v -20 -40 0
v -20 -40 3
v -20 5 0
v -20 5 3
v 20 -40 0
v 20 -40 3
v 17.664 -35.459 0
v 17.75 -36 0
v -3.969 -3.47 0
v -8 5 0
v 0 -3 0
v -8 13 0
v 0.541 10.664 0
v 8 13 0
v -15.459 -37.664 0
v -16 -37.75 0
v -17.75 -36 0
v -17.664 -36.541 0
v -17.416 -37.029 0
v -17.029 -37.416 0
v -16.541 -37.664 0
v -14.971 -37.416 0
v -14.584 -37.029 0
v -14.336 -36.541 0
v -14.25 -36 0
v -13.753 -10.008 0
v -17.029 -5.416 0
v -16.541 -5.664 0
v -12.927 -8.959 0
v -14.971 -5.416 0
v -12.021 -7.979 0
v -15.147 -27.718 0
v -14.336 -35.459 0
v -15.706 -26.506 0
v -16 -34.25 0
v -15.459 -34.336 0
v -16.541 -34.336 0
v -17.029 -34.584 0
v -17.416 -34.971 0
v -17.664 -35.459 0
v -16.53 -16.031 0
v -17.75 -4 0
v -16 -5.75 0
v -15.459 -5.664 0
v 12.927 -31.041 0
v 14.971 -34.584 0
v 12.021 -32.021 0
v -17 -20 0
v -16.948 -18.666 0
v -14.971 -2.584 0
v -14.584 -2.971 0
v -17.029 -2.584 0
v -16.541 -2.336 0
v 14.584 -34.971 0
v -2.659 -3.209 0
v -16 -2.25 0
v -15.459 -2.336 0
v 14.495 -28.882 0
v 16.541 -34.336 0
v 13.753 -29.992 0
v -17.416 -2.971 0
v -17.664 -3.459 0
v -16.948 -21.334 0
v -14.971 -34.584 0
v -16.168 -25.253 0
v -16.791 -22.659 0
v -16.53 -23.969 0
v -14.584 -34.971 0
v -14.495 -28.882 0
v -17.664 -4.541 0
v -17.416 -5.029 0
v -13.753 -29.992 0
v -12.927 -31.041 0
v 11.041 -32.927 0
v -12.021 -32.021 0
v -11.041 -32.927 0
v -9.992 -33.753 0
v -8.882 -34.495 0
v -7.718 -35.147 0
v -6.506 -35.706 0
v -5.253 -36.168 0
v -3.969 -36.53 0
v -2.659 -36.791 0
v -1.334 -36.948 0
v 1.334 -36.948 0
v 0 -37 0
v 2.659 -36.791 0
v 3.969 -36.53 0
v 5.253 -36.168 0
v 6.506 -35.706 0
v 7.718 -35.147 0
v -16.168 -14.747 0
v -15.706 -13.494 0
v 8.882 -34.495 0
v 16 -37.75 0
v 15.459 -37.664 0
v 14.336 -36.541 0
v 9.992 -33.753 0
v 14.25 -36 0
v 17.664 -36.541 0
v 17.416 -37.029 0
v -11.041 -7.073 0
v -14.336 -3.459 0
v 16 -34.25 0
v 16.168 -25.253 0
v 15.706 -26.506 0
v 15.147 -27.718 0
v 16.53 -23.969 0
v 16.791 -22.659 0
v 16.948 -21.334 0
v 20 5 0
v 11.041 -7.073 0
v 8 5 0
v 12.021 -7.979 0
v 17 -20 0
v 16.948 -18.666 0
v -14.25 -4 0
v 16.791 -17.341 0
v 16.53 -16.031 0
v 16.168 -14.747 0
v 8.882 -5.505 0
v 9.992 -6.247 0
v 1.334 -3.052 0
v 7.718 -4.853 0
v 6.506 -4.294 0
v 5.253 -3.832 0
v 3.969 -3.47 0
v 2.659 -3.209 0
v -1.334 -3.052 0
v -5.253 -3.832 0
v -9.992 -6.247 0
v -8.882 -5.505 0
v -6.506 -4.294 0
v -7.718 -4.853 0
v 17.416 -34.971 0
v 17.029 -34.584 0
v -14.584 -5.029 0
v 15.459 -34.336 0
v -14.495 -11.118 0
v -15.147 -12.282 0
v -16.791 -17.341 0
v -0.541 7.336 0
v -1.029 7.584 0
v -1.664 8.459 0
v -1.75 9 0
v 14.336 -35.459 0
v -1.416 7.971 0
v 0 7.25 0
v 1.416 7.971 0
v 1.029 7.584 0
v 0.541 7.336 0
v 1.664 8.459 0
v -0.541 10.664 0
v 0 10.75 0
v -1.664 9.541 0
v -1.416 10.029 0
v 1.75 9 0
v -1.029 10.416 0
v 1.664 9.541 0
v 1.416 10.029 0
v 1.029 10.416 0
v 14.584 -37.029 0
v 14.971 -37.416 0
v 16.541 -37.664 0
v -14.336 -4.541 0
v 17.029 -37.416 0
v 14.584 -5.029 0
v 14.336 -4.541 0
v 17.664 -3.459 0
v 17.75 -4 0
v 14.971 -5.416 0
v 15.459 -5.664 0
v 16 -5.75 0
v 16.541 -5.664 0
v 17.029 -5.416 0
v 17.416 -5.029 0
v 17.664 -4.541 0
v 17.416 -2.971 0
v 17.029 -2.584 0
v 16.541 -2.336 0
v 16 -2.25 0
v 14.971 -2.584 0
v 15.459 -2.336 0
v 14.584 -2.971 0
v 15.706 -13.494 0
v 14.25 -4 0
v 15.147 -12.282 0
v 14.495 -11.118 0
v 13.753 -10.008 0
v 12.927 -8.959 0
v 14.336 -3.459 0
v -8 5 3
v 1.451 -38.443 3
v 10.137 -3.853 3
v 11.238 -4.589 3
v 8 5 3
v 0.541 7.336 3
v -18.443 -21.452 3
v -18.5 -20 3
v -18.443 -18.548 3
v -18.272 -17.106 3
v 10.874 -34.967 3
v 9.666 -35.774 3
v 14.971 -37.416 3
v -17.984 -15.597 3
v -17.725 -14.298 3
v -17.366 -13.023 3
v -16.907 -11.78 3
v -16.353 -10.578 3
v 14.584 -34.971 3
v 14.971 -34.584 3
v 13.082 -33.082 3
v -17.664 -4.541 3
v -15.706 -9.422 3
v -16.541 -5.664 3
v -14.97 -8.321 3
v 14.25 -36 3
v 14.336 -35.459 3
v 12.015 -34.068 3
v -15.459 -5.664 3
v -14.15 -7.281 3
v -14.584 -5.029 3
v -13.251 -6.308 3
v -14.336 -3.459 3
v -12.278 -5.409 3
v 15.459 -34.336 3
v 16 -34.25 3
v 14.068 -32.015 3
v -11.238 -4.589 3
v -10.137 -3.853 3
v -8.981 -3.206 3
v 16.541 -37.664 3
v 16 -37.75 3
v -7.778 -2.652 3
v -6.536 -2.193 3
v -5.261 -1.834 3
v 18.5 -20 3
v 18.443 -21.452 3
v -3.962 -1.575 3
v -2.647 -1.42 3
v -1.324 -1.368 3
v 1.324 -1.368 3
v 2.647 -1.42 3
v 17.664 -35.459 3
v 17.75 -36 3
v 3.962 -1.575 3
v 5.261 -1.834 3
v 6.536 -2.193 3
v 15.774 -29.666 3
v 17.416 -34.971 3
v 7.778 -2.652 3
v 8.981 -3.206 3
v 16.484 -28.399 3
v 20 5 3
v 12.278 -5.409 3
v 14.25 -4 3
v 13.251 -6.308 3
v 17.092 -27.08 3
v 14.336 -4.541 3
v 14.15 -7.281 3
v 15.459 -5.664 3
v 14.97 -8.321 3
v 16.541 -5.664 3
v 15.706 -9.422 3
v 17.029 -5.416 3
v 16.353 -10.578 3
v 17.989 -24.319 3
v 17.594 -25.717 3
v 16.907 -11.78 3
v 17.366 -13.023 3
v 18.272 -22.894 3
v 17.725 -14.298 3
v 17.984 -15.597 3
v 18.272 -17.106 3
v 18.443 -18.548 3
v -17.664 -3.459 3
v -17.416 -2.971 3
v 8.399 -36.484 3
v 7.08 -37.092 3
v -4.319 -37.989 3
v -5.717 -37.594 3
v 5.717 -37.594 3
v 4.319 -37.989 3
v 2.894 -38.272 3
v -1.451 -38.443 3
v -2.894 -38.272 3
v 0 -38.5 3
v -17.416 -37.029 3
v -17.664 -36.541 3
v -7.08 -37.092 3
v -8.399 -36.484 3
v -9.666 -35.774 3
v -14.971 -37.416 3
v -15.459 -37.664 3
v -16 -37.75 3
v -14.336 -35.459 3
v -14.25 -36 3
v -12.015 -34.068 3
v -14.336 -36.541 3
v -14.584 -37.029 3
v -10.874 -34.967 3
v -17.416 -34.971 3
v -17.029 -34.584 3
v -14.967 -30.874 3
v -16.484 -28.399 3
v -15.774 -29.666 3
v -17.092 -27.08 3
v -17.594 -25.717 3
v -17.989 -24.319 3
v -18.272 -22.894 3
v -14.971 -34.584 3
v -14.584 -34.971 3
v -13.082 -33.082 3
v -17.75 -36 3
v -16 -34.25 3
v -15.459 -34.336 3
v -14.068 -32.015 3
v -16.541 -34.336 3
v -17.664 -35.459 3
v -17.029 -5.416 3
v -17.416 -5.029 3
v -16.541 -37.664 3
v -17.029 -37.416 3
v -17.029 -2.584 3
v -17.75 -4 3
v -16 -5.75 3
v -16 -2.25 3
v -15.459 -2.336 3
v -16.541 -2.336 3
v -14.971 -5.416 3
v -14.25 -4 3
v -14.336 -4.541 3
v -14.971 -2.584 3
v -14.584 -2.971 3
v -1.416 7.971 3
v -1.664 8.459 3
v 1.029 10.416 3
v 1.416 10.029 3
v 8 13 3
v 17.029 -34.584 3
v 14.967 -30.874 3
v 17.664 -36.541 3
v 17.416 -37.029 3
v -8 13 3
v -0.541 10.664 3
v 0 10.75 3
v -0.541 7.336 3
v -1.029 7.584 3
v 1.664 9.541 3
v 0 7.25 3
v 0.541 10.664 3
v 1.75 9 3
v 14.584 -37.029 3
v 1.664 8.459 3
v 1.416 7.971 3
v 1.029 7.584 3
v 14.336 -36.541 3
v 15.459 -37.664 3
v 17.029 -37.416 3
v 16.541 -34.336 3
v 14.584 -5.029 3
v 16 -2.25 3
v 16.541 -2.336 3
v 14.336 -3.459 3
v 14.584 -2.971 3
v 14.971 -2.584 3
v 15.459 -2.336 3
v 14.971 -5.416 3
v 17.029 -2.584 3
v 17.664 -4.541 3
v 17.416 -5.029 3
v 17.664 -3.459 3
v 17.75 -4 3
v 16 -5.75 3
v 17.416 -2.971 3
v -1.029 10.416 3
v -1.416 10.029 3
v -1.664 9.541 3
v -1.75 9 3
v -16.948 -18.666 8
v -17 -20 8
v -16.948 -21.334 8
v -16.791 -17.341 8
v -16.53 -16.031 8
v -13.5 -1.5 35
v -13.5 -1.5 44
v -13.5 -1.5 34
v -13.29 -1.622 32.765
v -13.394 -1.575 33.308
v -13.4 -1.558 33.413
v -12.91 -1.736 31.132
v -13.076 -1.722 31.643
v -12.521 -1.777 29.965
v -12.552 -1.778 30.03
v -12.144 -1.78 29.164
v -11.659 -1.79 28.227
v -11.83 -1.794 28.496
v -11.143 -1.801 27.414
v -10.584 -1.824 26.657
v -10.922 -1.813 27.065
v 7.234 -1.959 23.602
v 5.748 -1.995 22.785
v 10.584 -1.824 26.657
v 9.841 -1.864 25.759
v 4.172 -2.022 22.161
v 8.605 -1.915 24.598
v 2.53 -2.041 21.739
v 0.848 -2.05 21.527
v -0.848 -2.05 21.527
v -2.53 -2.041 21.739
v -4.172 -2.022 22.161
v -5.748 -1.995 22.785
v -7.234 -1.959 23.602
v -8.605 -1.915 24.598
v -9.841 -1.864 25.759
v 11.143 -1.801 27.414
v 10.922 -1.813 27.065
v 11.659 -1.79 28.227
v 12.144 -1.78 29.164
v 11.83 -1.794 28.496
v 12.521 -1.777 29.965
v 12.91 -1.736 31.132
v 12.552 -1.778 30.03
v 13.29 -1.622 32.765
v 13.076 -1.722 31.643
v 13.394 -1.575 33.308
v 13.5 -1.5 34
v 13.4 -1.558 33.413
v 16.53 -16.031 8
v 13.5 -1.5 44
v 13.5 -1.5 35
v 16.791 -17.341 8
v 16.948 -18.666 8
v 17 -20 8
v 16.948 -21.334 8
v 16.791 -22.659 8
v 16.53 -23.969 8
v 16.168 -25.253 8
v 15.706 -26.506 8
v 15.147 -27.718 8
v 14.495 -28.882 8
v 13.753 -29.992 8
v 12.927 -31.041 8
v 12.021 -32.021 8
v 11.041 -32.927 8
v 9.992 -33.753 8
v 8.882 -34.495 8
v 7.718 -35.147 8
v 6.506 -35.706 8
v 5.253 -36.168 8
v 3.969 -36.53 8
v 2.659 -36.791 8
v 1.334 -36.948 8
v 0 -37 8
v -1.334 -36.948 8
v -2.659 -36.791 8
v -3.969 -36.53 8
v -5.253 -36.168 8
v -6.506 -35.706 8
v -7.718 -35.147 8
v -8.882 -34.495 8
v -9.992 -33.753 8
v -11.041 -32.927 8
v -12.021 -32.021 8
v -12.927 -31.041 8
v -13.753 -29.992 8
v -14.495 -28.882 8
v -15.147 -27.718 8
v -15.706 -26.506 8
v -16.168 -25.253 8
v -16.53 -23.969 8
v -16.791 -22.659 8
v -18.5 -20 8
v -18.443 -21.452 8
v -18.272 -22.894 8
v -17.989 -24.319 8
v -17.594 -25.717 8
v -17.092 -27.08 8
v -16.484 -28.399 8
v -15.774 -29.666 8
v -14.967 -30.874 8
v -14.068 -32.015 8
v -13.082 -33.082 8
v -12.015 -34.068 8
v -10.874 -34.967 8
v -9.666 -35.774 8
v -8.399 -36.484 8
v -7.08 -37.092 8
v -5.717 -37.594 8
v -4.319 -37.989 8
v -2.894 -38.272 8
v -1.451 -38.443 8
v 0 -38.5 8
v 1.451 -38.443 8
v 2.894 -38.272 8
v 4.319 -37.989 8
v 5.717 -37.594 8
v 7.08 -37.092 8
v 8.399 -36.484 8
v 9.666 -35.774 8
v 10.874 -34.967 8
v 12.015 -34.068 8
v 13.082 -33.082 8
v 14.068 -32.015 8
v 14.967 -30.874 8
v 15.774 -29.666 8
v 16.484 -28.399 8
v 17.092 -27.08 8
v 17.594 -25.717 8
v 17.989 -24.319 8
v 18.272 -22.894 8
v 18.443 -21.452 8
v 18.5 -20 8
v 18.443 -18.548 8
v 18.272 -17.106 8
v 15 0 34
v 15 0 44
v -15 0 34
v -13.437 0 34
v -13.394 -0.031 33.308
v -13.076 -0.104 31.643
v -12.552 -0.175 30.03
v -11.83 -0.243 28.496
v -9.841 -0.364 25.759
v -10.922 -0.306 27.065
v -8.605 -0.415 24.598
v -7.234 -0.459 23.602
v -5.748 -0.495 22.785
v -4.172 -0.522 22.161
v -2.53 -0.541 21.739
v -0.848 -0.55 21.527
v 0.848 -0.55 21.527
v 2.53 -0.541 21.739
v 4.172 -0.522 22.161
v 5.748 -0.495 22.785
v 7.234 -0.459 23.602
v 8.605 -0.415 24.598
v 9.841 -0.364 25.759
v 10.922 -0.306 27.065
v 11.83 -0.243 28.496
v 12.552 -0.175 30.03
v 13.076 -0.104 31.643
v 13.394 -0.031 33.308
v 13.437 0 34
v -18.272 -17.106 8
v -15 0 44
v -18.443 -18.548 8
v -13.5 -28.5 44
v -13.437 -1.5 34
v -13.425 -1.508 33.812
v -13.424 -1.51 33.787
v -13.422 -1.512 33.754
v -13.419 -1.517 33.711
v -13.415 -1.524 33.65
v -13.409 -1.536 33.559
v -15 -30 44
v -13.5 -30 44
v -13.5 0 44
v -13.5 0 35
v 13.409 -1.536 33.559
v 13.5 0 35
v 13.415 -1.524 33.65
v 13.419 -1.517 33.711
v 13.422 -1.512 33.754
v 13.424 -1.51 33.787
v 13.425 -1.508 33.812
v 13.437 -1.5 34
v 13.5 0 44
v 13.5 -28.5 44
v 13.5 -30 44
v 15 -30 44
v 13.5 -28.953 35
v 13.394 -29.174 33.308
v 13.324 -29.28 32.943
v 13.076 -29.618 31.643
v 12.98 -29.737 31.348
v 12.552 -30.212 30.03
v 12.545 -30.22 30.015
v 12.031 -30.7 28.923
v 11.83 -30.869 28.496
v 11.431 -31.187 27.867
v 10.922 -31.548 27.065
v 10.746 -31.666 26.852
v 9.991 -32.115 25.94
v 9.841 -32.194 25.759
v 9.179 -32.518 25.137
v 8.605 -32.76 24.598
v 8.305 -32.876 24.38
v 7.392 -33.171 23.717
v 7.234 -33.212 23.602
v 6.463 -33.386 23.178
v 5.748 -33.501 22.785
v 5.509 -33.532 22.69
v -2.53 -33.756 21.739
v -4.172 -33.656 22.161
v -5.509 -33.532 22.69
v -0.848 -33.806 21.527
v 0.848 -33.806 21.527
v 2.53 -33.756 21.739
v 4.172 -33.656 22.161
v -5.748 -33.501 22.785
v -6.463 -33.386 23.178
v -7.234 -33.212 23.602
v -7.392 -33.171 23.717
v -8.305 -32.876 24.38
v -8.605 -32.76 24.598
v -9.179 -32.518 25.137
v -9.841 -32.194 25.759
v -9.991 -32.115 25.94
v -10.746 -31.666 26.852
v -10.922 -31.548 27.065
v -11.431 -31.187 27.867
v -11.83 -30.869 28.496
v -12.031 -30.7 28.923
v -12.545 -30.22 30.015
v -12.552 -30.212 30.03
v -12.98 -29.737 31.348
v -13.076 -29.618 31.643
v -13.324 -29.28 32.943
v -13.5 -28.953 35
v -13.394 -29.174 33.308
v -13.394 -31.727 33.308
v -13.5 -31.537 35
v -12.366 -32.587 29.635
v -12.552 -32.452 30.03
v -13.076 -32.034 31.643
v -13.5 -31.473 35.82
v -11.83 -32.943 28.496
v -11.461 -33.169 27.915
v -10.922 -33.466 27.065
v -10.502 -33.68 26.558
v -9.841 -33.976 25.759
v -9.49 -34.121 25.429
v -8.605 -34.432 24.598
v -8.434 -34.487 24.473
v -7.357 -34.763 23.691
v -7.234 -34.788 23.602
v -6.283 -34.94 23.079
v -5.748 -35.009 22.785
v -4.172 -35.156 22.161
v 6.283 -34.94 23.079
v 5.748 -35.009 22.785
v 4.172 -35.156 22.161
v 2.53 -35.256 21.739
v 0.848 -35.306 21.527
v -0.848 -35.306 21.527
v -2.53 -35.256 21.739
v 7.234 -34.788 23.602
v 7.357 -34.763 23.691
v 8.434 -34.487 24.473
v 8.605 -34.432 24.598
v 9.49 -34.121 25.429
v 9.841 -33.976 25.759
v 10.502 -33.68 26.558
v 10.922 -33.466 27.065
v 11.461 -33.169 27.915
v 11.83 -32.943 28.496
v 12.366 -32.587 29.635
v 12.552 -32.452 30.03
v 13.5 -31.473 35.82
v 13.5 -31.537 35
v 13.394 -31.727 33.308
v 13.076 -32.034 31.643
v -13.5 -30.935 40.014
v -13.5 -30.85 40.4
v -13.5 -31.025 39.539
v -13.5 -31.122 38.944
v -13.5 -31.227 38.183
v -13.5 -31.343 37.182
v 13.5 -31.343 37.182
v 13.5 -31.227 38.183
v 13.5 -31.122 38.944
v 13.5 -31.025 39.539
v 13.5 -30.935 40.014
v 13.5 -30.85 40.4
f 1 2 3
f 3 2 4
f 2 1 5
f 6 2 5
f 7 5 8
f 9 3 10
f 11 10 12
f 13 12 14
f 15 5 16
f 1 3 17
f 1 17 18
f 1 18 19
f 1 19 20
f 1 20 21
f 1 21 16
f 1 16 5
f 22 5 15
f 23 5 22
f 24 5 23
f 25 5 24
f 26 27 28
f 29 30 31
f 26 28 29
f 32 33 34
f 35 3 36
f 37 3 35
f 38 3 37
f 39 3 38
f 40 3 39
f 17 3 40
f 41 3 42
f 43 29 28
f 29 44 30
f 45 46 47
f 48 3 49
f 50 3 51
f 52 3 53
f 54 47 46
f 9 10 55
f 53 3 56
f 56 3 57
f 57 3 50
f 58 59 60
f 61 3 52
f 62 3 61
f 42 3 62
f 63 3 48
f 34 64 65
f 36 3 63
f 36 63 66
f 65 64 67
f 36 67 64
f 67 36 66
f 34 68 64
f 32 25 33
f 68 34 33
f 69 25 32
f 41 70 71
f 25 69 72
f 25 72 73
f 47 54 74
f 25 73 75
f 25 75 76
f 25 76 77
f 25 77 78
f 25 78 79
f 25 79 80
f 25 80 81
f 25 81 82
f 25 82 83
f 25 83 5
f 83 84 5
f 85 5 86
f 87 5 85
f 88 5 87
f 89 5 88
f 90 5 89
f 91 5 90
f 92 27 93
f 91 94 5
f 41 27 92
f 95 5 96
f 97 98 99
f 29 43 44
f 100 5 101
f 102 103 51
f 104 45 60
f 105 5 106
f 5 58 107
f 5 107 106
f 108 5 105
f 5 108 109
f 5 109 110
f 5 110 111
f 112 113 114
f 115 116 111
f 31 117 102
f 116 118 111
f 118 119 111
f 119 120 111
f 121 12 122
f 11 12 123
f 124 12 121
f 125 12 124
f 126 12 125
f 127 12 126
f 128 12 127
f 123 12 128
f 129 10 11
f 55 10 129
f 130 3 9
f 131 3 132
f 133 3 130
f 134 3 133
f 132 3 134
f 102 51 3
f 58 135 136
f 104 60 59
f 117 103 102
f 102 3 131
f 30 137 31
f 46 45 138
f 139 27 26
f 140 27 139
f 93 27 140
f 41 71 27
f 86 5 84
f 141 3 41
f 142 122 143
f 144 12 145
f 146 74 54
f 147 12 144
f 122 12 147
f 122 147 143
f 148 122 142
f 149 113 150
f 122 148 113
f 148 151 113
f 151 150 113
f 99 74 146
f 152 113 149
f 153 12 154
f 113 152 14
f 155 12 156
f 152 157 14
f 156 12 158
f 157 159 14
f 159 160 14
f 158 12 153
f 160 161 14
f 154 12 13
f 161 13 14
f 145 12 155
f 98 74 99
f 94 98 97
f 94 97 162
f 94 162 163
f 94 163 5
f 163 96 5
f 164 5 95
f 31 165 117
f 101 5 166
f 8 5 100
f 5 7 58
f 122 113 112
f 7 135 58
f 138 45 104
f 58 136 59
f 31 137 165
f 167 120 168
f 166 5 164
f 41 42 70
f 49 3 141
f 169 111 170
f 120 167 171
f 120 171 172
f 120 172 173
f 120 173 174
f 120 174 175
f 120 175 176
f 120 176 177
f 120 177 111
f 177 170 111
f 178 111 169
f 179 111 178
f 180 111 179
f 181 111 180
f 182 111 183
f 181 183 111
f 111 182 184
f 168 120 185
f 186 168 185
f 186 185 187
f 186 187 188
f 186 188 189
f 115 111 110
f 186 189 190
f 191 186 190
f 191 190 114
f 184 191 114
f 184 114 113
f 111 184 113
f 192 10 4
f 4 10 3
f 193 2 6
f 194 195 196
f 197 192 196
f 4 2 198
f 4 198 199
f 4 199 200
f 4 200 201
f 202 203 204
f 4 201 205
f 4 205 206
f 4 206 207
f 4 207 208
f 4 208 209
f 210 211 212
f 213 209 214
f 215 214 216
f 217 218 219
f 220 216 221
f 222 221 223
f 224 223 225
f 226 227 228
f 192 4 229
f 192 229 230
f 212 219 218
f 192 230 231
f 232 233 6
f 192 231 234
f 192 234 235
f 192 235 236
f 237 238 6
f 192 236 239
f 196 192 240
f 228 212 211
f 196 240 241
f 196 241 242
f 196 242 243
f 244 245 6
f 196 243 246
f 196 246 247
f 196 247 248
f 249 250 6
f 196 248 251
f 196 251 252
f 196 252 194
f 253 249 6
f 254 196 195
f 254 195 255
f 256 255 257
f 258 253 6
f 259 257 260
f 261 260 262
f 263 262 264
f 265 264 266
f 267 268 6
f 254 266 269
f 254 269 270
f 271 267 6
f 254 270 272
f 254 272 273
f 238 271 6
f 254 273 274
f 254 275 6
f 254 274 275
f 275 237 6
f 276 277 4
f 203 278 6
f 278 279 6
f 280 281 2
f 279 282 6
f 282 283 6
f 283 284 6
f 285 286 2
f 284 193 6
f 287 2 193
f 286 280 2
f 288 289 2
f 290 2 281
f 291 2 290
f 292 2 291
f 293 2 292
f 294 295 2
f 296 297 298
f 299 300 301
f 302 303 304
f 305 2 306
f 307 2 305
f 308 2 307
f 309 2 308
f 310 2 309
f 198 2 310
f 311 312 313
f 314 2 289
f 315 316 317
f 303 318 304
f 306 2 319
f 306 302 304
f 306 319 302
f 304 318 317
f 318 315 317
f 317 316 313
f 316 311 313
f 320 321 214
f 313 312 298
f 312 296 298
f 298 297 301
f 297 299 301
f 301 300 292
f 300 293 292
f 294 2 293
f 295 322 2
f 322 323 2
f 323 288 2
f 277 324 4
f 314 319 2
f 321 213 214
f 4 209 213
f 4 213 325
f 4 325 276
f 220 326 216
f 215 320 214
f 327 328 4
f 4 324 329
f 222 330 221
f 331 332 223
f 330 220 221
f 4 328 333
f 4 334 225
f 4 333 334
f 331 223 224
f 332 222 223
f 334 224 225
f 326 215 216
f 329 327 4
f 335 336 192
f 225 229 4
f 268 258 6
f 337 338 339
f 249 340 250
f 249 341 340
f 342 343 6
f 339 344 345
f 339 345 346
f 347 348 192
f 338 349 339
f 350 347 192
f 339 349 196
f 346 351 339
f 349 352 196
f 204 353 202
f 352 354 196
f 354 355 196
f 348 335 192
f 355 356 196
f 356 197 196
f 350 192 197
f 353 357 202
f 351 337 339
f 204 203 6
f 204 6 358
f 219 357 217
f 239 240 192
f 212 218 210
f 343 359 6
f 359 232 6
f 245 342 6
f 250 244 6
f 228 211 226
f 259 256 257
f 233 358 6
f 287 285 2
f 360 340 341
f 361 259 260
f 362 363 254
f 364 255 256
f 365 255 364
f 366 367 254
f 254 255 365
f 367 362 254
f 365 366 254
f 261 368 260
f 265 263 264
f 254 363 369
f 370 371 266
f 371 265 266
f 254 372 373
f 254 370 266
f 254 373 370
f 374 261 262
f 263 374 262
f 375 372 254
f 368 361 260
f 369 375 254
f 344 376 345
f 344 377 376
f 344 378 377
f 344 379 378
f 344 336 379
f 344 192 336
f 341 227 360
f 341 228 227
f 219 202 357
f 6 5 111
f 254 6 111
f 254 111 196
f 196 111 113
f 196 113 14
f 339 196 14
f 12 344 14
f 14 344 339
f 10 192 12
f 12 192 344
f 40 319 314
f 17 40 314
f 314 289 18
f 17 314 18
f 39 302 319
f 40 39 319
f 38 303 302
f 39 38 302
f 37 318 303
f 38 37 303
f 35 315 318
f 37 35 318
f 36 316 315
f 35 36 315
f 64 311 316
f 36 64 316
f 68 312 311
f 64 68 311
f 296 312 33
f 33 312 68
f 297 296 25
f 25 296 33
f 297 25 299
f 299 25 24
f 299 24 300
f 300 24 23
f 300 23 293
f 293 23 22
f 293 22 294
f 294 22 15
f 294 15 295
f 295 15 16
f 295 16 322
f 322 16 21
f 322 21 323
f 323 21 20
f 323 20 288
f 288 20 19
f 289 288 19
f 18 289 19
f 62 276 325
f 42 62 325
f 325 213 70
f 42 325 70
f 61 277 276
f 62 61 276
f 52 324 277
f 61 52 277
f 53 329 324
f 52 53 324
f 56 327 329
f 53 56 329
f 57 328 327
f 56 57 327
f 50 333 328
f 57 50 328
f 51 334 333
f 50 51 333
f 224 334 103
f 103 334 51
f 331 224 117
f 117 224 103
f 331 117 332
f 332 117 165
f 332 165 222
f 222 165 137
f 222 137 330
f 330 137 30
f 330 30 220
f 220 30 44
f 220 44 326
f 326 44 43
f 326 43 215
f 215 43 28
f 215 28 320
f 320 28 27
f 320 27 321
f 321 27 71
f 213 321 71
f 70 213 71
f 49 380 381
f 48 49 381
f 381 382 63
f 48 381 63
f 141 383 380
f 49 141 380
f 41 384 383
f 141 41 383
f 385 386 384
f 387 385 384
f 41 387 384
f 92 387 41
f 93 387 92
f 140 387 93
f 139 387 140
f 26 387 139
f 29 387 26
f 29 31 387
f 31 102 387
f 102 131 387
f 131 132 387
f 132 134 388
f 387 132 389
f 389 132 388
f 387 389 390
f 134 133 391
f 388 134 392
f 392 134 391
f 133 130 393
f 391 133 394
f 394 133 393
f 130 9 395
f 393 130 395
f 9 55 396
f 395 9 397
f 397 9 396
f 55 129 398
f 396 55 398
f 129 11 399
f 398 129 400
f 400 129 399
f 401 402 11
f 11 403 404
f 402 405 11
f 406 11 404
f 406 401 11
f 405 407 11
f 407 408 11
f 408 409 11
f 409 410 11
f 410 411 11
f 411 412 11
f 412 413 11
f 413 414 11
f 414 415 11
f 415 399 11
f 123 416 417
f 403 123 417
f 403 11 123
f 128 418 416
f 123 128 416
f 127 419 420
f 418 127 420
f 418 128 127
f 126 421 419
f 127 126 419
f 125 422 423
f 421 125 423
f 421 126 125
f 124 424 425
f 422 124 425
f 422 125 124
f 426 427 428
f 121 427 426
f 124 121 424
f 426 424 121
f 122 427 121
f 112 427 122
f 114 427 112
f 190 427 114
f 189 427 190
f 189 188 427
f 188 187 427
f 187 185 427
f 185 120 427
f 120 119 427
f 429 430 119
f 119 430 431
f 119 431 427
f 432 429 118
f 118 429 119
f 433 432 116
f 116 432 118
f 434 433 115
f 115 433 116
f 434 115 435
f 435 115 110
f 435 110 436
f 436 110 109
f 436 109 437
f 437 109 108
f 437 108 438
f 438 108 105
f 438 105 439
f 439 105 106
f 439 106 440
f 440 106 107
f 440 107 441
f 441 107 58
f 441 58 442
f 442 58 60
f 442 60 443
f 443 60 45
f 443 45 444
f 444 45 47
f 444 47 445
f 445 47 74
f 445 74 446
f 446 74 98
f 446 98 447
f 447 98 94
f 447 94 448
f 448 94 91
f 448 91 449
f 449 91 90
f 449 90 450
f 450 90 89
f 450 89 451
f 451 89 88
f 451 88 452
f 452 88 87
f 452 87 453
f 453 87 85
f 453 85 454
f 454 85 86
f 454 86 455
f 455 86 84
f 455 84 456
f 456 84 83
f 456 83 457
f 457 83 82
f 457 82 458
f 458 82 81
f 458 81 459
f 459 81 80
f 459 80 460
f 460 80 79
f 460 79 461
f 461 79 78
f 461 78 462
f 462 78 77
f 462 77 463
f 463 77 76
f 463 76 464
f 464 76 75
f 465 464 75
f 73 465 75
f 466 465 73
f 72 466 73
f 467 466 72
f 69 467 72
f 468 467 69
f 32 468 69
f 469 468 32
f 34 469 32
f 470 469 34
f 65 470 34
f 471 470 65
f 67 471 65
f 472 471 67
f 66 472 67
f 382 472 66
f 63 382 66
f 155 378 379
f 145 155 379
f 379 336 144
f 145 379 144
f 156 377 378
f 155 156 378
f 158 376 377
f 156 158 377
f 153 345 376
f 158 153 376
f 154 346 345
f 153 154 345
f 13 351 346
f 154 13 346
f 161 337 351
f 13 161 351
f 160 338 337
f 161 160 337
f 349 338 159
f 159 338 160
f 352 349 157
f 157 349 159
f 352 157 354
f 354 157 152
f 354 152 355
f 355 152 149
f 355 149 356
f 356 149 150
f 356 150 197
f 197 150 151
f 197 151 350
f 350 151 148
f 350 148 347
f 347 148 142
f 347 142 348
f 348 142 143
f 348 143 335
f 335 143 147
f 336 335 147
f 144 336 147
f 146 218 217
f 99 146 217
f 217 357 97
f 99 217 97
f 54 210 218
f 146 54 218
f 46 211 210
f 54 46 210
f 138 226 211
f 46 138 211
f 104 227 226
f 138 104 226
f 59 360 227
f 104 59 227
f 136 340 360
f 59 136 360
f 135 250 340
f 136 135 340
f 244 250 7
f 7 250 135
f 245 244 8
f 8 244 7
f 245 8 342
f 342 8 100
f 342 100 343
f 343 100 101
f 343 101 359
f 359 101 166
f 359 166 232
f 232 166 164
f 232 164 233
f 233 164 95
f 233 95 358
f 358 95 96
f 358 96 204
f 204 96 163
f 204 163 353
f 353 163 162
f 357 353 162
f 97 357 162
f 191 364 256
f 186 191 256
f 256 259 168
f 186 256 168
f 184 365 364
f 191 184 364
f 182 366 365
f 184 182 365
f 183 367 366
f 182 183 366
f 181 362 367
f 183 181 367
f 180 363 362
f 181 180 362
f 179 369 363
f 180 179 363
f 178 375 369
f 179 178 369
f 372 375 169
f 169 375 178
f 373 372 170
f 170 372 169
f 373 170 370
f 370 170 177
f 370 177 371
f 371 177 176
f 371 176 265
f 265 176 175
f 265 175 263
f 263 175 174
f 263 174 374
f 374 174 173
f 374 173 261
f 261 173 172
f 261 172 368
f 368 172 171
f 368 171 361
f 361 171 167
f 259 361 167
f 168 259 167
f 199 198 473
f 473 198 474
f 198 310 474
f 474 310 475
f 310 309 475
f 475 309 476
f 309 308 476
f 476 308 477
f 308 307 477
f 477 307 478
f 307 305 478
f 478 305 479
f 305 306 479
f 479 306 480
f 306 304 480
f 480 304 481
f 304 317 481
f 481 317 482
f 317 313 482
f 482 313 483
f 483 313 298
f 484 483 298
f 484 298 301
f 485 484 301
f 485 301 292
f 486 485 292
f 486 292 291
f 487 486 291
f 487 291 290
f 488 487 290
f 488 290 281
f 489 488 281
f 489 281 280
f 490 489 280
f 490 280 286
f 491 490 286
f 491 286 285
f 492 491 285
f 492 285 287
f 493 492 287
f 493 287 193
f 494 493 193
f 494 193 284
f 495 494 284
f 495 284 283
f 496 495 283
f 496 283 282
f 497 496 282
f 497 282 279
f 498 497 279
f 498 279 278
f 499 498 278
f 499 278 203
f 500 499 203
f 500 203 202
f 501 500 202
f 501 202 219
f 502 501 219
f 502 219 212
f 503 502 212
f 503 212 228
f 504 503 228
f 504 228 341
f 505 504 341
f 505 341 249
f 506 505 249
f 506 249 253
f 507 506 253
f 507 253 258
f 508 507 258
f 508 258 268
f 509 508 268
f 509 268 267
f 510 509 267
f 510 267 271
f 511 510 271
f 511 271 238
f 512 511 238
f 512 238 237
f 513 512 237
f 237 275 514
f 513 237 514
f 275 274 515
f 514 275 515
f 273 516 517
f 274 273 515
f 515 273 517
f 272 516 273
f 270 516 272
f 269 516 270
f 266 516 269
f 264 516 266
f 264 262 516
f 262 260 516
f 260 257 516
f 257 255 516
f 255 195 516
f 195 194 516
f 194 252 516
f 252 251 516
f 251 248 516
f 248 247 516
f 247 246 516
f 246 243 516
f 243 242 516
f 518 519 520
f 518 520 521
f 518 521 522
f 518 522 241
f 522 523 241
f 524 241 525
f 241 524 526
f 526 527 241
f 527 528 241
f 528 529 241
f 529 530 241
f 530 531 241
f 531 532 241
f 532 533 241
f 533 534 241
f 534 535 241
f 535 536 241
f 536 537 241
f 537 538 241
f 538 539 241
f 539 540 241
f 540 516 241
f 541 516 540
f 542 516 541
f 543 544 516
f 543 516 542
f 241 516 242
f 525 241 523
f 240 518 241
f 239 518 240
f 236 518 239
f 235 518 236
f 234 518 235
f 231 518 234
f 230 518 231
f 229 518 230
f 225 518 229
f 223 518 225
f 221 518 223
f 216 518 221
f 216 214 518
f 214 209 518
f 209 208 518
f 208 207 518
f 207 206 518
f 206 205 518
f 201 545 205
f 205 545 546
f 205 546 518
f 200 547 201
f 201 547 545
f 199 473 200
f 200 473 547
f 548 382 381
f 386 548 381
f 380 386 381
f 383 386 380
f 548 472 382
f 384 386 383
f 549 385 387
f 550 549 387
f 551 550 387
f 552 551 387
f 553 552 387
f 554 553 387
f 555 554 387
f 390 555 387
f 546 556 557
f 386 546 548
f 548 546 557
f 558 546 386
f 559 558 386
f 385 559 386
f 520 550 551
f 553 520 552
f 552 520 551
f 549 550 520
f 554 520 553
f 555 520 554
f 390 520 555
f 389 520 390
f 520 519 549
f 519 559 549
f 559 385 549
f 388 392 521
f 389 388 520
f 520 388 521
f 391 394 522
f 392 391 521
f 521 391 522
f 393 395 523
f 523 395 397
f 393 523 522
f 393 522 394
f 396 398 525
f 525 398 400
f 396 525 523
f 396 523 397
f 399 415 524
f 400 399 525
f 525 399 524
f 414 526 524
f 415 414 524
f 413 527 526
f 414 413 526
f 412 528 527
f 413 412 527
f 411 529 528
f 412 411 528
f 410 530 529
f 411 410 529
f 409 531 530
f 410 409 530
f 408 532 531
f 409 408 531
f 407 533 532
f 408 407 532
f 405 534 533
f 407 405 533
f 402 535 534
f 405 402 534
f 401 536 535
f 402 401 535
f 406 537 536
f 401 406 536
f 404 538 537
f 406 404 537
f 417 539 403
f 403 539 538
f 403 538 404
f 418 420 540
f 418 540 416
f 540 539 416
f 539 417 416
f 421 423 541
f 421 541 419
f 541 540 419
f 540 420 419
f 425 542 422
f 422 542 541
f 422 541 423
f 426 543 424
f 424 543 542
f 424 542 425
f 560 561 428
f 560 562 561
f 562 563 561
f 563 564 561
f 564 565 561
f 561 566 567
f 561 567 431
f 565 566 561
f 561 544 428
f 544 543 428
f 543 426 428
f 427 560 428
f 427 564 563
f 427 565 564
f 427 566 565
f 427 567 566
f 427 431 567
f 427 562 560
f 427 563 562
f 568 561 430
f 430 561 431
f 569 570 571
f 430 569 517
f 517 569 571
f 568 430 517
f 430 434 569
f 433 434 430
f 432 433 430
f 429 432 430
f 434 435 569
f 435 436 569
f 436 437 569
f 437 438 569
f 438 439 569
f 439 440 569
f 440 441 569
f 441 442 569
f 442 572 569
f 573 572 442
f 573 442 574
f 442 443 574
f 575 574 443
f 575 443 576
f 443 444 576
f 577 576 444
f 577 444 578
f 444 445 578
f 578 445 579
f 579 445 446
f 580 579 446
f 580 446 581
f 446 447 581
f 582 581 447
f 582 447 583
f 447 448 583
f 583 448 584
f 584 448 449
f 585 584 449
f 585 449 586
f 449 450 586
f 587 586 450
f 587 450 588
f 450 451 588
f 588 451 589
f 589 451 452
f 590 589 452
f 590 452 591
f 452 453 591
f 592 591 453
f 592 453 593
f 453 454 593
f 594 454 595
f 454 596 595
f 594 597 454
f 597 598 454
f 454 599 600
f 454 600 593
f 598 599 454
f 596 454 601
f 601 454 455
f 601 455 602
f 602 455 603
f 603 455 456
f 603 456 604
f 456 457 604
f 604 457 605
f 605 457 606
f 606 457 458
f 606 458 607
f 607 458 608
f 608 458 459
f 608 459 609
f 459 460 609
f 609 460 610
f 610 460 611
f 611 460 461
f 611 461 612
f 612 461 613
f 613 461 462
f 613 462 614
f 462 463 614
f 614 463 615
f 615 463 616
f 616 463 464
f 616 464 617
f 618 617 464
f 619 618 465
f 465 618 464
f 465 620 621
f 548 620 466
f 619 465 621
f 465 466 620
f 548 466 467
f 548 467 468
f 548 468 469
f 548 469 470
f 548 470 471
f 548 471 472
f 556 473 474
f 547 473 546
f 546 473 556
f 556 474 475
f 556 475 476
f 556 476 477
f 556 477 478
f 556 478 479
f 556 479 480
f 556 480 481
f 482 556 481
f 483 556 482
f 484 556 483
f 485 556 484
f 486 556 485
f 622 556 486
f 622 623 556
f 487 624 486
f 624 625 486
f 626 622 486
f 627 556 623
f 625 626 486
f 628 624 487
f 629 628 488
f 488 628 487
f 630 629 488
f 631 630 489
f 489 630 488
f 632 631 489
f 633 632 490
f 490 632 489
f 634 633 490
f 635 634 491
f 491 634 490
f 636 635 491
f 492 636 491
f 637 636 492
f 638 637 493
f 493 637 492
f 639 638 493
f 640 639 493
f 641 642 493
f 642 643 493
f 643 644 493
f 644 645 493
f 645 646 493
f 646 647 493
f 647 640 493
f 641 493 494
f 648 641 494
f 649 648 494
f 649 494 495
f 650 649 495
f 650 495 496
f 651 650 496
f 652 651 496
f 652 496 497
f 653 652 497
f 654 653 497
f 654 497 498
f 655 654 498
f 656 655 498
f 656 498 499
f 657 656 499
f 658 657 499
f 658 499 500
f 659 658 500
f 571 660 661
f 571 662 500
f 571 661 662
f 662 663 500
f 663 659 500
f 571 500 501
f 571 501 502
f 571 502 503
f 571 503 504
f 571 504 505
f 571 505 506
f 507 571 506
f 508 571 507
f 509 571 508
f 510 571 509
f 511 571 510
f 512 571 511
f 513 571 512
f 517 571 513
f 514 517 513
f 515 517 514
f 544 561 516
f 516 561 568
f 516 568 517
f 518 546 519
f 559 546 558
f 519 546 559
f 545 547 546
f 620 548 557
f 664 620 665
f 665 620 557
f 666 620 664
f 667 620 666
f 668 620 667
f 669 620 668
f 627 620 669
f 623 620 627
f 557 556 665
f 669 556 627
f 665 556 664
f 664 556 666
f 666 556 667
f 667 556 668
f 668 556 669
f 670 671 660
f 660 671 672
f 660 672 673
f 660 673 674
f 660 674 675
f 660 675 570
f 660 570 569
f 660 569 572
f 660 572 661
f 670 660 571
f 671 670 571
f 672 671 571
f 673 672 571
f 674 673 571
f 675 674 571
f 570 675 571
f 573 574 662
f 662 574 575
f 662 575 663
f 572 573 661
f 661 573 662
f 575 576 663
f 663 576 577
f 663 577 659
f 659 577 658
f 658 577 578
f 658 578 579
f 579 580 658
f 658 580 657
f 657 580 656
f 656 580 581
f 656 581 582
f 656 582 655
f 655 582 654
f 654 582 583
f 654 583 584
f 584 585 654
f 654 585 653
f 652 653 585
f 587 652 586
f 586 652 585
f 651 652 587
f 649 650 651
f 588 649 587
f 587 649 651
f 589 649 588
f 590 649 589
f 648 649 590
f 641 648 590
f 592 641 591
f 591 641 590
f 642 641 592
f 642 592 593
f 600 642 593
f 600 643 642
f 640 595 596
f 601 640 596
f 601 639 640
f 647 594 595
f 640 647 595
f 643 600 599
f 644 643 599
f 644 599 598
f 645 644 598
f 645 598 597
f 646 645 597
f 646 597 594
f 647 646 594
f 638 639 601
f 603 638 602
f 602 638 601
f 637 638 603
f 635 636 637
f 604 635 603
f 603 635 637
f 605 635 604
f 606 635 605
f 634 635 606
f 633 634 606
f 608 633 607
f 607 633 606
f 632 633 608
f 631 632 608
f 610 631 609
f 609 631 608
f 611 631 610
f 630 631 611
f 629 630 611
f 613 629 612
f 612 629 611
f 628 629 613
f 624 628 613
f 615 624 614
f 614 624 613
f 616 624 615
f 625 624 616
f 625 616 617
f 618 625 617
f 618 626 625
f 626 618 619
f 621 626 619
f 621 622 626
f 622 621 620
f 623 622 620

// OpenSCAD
translate([-8,5])
difference(){
cube([16,8,3]);
translate([8,4,-1])cylinder(r=3.5/2,h=10,$fn=20);
}
difference(){
translate([-20,-40,0])cube([40,45,3]);
translate([-16,-4,-1])cylinder(r=3.5/2,h=6,$fn=20);
translate([16,-4,-1])cylinder(r=3.5/2,h=6,$fn=20);
translate([-16,-36,-1])cylinder(r=3.5/2,h=6,$fn=20);
translate([16,-36,-1])cylinder(r=3.5/2,h=6,$fn=20);
translate([0,-20,-1])cylinder(r=37/2,h=6,$fn=80);

}
difference(){
difference(){
hull(){
translate([0,-20,0])cylinder(r=37/2,h=8,$fn=80);
translate([-15,-30,17+17])cube([30,30,10]);
}
hull(){
translate([0,-20,0])cylinder(r=37/2-1.5,h=8,$fn=80);
translate([-27/2,-27-1.5,17+17])cube([27,27,10]);
}
}
#hull(){
translate([0,5,35])rotate([90,0,0])cylinder(r=27/2,h=50,$fn=50);
translate([0,5,35+10])rotate([90,0,0])cylinder(r=27/2,h=50,$fn=50);
}
}
